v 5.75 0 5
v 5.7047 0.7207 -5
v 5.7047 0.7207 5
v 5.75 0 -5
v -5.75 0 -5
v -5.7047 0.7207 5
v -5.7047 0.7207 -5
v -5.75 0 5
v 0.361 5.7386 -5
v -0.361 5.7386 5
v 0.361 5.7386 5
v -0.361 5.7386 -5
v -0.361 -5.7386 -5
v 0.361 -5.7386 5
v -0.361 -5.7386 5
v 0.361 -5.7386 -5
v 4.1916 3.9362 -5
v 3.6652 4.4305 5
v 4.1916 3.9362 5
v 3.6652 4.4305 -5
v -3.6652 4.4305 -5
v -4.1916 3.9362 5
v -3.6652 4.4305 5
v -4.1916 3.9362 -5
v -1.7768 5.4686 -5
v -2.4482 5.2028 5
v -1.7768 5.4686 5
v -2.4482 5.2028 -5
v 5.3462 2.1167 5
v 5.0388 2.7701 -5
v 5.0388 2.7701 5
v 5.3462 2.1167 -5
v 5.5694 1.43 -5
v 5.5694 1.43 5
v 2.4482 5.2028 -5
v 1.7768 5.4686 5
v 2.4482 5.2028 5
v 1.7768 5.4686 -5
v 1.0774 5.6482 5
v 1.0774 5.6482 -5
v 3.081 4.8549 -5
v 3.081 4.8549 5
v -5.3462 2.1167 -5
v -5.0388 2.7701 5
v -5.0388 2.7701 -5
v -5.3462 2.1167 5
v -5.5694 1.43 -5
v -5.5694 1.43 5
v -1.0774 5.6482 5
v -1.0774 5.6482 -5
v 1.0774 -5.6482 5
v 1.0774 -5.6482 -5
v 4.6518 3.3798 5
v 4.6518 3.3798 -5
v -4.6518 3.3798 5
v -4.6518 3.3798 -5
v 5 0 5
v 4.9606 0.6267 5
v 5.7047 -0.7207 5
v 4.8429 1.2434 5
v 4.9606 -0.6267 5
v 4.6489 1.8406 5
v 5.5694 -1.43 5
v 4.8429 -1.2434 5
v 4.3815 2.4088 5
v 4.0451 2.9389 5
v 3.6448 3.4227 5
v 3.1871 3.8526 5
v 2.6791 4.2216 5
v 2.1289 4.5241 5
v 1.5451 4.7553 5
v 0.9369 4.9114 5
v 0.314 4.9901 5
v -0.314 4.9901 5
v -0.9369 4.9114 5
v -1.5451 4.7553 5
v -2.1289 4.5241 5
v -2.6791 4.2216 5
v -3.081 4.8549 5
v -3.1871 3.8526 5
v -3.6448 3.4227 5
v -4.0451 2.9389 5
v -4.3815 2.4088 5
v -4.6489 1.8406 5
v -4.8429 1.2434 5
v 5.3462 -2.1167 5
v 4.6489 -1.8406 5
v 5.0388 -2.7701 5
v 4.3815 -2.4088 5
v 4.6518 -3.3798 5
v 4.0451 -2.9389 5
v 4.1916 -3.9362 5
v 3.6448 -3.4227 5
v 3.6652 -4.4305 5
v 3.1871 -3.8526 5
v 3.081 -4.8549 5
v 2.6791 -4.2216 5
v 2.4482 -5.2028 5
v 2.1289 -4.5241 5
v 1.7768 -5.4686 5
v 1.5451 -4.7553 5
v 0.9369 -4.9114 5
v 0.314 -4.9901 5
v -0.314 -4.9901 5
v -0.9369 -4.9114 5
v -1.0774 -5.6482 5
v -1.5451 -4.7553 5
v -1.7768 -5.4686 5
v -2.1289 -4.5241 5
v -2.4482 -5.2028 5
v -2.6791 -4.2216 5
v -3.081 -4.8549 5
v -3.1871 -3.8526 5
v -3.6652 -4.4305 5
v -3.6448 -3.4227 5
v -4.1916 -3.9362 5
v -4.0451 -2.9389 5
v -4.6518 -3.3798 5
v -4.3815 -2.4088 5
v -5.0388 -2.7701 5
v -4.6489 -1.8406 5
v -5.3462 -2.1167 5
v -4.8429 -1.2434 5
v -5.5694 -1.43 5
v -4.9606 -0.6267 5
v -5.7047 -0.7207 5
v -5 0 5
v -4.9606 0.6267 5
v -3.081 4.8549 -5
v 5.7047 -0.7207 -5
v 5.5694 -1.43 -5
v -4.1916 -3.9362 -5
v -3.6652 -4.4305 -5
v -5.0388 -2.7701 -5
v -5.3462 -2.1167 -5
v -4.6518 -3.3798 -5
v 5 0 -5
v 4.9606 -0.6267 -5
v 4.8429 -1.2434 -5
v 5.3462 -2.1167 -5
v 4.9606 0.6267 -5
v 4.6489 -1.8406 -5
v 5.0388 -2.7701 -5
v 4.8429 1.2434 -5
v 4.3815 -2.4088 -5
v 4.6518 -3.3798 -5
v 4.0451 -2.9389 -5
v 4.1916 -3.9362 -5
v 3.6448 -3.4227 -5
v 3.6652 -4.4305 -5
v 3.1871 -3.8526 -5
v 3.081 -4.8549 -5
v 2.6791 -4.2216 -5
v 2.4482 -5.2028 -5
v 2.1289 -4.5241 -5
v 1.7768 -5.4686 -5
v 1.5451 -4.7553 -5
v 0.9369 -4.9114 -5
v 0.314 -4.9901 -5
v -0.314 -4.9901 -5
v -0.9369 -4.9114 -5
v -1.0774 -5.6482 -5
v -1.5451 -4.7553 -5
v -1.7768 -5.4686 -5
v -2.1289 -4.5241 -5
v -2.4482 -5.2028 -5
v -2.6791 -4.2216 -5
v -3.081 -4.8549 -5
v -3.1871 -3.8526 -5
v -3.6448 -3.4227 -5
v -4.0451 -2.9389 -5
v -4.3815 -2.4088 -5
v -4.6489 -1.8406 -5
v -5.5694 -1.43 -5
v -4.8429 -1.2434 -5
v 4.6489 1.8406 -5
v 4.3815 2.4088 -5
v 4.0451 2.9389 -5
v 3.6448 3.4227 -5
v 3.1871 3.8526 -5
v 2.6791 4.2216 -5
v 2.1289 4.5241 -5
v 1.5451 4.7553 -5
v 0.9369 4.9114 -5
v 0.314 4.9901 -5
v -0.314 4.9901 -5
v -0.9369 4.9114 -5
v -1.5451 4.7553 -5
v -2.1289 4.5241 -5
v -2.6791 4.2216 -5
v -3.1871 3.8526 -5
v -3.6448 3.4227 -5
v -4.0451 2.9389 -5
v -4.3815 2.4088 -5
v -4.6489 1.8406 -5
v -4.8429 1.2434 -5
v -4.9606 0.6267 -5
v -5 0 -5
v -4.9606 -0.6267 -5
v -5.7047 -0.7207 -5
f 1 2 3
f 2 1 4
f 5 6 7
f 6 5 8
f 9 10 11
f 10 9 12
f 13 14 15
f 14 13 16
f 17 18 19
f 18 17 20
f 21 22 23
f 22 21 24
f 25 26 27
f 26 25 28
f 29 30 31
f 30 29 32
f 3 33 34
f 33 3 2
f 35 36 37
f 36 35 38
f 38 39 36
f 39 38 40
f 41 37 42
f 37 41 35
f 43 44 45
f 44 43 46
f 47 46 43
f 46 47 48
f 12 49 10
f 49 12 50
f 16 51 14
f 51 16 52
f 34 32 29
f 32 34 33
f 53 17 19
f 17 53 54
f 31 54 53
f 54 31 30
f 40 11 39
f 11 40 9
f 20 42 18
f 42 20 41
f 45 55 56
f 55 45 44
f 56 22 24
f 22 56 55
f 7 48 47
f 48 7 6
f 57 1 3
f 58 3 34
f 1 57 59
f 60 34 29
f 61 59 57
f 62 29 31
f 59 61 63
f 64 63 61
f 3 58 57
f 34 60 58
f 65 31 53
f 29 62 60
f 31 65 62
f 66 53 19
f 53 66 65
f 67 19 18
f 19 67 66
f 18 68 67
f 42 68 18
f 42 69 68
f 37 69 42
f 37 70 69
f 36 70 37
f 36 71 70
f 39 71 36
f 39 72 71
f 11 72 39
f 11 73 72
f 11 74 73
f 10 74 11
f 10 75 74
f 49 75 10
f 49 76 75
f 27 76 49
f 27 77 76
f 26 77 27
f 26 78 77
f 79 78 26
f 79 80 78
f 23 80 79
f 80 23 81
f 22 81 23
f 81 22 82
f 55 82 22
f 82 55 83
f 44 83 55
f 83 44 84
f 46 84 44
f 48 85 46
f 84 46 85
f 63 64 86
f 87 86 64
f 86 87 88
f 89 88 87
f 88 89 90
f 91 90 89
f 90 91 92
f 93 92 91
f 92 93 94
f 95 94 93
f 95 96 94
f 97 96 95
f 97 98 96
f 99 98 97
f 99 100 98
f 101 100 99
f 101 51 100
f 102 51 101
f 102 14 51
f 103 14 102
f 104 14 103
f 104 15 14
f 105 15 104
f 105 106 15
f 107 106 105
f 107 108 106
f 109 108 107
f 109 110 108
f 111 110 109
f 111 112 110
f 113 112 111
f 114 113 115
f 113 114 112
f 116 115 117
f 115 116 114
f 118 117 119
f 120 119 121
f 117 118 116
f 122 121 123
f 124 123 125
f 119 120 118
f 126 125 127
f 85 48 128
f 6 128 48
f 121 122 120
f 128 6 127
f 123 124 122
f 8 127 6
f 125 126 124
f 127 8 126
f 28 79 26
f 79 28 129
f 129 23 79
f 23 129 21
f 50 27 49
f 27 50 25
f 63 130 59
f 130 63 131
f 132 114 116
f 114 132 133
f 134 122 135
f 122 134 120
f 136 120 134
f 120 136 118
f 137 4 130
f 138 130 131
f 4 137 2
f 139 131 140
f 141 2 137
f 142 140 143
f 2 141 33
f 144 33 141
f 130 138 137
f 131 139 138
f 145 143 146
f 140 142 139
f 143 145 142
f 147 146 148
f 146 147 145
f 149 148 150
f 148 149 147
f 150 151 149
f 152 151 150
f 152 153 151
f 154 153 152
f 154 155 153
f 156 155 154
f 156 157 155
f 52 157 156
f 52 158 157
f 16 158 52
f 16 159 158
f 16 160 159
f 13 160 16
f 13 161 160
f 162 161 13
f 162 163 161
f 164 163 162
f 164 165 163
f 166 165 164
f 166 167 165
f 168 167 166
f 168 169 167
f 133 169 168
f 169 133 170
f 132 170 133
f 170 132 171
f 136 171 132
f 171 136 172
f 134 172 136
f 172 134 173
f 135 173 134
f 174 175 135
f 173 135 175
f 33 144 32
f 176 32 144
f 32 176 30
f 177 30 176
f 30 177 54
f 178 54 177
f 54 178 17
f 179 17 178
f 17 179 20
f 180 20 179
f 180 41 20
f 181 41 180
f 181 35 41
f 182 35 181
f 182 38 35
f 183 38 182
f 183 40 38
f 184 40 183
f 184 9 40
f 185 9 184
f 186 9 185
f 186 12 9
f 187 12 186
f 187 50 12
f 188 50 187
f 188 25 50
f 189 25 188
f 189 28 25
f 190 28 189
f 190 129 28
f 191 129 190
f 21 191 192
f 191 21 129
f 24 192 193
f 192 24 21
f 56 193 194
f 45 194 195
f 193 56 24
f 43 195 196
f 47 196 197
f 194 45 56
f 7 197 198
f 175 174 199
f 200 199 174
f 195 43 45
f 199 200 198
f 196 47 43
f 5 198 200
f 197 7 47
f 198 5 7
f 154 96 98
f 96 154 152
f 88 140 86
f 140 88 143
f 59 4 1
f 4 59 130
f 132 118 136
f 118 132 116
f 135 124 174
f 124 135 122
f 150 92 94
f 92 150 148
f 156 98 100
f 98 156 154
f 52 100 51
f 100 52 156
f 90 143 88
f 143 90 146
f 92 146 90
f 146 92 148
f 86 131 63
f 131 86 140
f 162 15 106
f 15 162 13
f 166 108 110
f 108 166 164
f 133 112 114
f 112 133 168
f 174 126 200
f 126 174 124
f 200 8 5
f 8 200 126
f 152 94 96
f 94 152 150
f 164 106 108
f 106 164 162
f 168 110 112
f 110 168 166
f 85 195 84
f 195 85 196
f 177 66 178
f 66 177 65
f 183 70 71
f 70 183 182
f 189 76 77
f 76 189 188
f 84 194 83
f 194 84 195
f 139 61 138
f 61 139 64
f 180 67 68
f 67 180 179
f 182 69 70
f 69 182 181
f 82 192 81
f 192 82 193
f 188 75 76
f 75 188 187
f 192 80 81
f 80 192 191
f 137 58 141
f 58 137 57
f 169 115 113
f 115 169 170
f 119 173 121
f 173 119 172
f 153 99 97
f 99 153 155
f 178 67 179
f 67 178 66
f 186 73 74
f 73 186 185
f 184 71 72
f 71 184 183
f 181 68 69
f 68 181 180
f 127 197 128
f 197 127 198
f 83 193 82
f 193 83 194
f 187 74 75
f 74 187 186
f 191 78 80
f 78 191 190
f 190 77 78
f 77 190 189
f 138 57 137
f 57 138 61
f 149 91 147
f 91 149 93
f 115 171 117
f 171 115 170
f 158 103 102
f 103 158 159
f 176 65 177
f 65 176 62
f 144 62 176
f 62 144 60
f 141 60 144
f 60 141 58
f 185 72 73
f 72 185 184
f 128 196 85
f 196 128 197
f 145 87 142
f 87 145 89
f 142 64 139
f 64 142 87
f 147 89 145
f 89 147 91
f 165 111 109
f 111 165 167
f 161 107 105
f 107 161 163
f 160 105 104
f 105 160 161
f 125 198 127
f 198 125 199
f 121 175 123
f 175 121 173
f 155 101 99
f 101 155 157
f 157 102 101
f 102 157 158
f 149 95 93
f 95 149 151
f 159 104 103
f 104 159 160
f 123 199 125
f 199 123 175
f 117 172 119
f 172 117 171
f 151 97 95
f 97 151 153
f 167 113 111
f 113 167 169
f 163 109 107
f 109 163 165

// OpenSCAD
$fn = 50;


difference() {
	union() {
		translate(v = [0, 0, -5.0000000000]) {
			cylinder(h = 10, r = 5.7500000000);
		}
	}
	union() {
		translate(v = [0, 0, -100.0000000000]) {
			cylinder(h = 200, r = 5.0000000000);
		}
	}
}
